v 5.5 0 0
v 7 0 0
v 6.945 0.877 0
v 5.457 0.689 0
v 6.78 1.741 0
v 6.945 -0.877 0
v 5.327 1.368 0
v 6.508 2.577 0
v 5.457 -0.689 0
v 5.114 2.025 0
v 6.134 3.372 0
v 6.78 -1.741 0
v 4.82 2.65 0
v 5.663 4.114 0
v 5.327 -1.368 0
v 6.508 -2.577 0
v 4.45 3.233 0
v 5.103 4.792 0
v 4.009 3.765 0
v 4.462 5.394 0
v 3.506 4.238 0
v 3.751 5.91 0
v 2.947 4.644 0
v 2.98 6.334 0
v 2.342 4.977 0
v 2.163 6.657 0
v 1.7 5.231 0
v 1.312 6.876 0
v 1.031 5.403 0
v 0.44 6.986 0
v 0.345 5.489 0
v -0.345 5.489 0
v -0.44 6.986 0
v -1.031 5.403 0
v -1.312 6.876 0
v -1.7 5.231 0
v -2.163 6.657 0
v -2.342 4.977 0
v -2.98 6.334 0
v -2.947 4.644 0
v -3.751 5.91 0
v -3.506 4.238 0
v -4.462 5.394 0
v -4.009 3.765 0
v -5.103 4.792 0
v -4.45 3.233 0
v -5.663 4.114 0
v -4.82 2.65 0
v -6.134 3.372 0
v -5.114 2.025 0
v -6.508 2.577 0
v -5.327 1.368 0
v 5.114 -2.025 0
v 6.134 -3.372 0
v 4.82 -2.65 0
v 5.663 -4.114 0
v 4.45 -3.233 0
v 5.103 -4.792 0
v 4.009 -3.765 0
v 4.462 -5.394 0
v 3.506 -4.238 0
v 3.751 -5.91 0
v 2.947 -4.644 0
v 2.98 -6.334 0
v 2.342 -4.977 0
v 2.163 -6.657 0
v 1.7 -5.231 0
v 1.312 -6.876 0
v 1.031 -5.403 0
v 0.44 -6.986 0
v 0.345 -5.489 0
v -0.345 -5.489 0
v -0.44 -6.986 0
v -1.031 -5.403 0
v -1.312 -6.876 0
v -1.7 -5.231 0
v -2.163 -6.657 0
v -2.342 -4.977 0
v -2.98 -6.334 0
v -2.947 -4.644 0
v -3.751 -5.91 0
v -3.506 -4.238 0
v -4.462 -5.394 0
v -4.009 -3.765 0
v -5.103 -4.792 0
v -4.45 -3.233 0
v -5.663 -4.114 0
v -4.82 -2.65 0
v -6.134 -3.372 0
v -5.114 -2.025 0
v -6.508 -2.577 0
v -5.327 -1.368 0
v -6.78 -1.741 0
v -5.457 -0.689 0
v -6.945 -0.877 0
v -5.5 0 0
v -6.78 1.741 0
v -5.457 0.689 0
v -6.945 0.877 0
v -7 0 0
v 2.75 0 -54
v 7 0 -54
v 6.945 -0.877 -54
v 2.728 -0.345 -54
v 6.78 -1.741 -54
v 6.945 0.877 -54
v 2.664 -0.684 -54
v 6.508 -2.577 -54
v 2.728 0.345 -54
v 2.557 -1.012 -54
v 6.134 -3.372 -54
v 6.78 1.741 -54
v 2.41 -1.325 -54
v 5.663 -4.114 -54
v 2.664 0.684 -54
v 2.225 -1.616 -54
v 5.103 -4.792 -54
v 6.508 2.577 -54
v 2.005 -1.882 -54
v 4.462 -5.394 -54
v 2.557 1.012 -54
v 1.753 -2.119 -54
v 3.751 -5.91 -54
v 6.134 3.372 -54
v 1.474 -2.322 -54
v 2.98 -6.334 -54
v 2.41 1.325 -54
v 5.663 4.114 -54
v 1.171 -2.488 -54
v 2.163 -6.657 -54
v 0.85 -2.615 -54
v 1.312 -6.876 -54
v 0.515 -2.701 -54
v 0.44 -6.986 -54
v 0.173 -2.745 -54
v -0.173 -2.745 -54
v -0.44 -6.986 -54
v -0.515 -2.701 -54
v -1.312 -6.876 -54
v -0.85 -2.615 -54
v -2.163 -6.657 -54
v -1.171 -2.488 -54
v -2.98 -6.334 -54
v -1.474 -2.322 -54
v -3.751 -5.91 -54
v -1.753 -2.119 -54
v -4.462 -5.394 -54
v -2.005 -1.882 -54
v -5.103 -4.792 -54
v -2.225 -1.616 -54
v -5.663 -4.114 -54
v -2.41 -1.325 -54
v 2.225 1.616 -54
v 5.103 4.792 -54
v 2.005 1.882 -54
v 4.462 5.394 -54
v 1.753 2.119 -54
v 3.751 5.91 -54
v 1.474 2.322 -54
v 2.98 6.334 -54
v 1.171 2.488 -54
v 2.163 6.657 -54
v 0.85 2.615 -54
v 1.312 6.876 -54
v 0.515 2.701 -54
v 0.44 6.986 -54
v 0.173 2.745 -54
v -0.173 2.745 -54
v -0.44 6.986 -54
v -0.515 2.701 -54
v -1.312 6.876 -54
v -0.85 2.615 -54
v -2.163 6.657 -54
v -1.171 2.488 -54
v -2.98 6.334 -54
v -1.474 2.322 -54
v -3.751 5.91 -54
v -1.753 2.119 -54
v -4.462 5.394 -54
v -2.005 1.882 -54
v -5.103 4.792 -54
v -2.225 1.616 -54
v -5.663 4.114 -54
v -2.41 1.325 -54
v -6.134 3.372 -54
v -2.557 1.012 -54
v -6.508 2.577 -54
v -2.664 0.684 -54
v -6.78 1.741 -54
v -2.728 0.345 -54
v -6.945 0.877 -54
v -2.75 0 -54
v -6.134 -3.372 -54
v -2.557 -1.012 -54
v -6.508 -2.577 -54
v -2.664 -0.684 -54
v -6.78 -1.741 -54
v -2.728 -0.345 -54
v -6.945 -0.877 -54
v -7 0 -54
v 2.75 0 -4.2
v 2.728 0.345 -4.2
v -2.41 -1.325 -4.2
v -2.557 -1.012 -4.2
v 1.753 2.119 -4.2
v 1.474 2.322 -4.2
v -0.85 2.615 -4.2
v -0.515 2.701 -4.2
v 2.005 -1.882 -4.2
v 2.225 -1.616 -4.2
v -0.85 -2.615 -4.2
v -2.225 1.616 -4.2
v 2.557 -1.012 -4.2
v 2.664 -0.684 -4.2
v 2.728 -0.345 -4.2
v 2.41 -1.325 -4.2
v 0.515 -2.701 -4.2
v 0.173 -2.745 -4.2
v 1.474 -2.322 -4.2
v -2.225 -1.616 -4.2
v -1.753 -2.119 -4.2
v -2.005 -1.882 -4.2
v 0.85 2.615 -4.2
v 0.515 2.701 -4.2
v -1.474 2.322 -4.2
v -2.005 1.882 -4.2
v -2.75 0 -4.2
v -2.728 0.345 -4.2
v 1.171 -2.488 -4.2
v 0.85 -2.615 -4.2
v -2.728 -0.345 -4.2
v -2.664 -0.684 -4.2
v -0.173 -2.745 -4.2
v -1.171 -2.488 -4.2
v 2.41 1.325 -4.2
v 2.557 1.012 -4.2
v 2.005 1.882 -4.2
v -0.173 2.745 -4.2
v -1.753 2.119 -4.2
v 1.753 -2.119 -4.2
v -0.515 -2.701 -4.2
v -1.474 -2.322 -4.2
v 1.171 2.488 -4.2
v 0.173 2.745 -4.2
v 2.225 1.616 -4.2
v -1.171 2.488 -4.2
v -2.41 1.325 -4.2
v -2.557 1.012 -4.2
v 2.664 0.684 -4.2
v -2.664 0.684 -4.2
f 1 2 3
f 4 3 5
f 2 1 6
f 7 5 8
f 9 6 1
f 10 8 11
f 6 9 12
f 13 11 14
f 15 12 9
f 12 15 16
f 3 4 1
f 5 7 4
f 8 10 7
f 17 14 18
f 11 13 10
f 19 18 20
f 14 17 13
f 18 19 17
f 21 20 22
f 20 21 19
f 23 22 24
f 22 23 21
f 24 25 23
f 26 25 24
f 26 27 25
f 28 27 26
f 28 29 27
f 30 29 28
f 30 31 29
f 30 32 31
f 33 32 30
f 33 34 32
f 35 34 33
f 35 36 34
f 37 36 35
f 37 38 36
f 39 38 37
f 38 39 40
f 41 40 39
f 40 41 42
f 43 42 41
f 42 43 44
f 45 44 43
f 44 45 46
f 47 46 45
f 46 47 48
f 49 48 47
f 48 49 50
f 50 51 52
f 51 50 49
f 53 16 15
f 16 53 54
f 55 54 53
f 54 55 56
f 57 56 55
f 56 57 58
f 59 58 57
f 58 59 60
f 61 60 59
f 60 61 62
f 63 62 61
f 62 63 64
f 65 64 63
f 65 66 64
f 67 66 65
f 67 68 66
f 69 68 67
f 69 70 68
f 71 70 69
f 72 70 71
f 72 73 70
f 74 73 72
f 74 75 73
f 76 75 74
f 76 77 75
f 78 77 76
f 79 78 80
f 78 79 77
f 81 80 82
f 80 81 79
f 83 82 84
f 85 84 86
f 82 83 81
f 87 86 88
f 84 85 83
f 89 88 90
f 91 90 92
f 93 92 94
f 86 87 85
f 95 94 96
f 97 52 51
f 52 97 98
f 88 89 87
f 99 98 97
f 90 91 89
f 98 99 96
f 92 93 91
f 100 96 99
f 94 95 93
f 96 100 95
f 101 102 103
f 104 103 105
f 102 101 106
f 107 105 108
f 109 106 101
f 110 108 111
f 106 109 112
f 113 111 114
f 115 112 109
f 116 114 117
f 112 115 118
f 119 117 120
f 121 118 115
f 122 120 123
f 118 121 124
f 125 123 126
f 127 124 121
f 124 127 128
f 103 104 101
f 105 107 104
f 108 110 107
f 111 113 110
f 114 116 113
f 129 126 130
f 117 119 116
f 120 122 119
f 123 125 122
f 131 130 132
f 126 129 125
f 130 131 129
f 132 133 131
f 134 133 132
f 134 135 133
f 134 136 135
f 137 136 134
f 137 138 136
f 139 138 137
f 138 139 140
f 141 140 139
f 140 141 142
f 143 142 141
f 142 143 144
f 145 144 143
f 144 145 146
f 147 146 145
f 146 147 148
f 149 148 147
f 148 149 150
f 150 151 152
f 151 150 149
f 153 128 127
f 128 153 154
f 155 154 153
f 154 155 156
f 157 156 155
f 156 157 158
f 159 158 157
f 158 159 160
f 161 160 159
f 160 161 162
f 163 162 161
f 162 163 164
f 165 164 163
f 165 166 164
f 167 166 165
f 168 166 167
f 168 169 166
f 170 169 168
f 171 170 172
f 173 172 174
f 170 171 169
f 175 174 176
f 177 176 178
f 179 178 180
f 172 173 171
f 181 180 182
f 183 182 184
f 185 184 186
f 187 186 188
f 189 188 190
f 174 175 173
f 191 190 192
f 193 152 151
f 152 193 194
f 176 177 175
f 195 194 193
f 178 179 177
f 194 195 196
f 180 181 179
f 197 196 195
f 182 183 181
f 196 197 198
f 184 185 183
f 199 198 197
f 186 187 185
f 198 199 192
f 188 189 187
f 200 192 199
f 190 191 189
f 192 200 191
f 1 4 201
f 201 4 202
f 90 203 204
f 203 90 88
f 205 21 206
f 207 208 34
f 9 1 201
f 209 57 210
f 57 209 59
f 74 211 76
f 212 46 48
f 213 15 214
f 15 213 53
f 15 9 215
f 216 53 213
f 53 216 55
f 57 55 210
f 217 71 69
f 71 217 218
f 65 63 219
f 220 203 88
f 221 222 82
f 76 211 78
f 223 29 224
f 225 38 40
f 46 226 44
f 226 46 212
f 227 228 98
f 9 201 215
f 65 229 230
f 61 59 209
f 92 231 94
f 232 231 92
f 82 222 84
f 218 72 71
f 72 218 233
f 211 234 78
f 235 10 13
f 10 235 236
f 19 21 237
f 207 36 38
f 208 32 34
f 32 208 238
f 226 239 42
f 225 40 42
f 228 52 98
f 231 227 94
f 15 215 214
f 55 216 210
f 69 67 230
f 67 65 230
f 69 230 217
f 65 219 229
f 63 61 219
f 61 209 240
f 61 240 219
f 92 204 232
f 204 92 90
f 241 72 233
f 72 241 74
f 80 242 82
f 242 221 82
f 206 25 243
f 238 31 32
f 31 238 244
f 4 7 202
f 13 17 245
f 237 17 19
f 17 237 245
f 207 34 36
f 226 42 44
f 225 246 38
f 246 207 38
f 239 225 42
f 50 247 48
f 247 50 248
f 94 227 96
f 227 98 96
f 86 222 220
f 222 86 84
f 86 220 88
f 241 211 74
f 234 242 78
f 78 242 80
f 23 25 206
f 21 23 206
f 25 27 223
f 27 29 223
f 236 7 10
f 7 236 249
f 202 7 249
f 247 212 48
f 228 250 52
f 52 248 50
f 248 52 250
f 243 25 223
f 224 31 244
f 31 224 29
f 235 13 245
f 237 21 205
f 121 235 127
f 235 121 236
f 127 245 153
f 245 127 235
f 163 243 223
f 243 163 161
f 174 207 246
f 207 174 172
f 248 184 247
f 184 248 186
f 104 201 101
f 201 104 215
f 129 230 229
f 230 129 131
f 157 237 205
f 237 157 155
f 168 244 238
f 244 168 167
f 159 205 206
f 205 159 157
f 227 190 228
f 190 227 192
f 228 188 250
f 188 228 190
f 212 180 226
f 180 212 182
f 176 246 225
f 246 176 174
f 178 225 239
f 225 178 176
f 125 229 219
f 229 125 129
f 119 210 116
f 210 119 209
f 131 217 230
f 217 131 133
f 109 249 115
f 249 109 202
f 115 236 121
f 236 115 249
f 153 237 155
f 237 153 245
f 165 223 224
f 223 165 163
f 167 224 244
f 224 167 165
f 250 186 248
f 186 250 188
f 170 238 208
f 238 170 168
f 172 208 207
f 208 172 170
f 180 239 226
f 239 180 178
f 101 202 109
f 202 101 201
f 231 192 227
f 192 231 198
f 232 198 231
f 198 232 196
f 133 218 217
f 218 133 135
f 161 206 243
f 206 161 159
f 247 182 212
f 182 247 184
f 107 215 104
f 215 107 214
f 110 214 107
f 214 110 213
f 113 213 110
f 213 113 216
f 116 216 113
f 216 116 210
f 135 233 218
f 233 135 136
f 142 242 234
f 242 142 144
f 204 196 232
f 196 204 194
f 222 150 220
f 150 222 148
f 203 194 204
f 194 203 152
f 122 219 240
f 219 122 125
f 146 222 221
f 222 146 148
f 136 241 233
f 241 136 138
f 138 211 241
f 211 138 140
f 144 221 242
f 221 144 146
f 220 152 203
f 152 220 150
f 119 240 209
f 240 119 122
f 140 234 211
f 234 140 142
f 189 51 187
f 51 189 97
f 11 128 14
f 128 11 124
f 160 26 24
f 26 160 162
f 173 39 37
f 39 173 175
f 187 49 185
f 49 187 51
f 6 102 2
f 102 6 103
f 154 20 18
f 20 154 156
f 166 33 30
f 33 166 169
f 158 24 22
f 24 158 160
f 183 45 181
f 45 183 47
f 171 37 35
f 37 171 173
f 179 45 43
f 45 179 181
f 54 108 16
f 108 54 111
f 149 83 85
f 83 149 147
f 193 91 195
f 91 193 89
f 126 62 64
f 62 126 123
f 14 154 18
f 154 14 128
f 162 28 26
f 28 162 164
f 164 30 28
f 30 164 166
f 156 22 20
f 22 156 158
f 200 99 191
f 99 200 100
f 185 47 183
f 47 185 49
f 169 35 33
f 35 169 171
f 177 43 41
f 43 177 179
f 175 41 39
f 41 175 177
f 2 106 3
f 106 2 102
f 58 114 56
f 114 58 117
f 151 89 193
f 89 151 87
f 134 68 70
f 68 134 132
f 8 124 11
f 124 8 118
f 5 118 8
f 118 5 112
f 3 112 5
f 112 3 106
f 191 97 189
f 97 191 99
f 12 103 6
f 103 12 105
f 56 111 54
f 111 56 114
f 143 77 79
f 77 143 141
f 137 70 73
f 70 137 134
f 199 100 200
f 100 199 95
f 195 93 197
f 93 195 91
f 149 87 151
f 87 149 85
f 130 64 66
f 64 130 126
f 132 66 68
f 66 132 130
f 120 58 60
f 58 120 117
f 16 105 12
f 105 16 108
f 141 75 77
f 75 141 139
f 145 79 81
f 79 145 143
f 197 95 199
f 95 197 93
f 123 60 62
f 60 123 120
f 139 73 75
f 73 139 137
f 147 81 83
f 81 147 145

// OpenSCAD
$fn = 50;


difference() {
	union() {
		translate(v = [0, 0, -54.0000000000]) {
			cylinder(h = 54, r = 7.0000000000);
		}
		cylinder(h = 0, r = 16.0000000000);
	}
	union() {
		translate(v = [0, 0, 0]) {
			rotate(a = [0, 0, 0]) {
				difference() {
					union() {
						#translate(v = [0, 0, -54.0000000000]) {
							cylinder(h = 54, r = 2.2500000000);
						}
						#translate(v = [0, 0, -4.2000000000]) {
							cylinder(h = 4.2000000000, r = 7.0000000000, r1 = 2.7500000000, r2 = 5.5000000000);
						}
						#translate(v = [0, 0, -54.0000000000]) {
							cylinder(h = 54, r = 2.7500000000);
						}
						#translate(v = [0, 0, -54.0000000000]) {
							cylinder(h = 54, r = 2.2500000000);
						}
					}
					union();
				}
			}
		}
	}
}
